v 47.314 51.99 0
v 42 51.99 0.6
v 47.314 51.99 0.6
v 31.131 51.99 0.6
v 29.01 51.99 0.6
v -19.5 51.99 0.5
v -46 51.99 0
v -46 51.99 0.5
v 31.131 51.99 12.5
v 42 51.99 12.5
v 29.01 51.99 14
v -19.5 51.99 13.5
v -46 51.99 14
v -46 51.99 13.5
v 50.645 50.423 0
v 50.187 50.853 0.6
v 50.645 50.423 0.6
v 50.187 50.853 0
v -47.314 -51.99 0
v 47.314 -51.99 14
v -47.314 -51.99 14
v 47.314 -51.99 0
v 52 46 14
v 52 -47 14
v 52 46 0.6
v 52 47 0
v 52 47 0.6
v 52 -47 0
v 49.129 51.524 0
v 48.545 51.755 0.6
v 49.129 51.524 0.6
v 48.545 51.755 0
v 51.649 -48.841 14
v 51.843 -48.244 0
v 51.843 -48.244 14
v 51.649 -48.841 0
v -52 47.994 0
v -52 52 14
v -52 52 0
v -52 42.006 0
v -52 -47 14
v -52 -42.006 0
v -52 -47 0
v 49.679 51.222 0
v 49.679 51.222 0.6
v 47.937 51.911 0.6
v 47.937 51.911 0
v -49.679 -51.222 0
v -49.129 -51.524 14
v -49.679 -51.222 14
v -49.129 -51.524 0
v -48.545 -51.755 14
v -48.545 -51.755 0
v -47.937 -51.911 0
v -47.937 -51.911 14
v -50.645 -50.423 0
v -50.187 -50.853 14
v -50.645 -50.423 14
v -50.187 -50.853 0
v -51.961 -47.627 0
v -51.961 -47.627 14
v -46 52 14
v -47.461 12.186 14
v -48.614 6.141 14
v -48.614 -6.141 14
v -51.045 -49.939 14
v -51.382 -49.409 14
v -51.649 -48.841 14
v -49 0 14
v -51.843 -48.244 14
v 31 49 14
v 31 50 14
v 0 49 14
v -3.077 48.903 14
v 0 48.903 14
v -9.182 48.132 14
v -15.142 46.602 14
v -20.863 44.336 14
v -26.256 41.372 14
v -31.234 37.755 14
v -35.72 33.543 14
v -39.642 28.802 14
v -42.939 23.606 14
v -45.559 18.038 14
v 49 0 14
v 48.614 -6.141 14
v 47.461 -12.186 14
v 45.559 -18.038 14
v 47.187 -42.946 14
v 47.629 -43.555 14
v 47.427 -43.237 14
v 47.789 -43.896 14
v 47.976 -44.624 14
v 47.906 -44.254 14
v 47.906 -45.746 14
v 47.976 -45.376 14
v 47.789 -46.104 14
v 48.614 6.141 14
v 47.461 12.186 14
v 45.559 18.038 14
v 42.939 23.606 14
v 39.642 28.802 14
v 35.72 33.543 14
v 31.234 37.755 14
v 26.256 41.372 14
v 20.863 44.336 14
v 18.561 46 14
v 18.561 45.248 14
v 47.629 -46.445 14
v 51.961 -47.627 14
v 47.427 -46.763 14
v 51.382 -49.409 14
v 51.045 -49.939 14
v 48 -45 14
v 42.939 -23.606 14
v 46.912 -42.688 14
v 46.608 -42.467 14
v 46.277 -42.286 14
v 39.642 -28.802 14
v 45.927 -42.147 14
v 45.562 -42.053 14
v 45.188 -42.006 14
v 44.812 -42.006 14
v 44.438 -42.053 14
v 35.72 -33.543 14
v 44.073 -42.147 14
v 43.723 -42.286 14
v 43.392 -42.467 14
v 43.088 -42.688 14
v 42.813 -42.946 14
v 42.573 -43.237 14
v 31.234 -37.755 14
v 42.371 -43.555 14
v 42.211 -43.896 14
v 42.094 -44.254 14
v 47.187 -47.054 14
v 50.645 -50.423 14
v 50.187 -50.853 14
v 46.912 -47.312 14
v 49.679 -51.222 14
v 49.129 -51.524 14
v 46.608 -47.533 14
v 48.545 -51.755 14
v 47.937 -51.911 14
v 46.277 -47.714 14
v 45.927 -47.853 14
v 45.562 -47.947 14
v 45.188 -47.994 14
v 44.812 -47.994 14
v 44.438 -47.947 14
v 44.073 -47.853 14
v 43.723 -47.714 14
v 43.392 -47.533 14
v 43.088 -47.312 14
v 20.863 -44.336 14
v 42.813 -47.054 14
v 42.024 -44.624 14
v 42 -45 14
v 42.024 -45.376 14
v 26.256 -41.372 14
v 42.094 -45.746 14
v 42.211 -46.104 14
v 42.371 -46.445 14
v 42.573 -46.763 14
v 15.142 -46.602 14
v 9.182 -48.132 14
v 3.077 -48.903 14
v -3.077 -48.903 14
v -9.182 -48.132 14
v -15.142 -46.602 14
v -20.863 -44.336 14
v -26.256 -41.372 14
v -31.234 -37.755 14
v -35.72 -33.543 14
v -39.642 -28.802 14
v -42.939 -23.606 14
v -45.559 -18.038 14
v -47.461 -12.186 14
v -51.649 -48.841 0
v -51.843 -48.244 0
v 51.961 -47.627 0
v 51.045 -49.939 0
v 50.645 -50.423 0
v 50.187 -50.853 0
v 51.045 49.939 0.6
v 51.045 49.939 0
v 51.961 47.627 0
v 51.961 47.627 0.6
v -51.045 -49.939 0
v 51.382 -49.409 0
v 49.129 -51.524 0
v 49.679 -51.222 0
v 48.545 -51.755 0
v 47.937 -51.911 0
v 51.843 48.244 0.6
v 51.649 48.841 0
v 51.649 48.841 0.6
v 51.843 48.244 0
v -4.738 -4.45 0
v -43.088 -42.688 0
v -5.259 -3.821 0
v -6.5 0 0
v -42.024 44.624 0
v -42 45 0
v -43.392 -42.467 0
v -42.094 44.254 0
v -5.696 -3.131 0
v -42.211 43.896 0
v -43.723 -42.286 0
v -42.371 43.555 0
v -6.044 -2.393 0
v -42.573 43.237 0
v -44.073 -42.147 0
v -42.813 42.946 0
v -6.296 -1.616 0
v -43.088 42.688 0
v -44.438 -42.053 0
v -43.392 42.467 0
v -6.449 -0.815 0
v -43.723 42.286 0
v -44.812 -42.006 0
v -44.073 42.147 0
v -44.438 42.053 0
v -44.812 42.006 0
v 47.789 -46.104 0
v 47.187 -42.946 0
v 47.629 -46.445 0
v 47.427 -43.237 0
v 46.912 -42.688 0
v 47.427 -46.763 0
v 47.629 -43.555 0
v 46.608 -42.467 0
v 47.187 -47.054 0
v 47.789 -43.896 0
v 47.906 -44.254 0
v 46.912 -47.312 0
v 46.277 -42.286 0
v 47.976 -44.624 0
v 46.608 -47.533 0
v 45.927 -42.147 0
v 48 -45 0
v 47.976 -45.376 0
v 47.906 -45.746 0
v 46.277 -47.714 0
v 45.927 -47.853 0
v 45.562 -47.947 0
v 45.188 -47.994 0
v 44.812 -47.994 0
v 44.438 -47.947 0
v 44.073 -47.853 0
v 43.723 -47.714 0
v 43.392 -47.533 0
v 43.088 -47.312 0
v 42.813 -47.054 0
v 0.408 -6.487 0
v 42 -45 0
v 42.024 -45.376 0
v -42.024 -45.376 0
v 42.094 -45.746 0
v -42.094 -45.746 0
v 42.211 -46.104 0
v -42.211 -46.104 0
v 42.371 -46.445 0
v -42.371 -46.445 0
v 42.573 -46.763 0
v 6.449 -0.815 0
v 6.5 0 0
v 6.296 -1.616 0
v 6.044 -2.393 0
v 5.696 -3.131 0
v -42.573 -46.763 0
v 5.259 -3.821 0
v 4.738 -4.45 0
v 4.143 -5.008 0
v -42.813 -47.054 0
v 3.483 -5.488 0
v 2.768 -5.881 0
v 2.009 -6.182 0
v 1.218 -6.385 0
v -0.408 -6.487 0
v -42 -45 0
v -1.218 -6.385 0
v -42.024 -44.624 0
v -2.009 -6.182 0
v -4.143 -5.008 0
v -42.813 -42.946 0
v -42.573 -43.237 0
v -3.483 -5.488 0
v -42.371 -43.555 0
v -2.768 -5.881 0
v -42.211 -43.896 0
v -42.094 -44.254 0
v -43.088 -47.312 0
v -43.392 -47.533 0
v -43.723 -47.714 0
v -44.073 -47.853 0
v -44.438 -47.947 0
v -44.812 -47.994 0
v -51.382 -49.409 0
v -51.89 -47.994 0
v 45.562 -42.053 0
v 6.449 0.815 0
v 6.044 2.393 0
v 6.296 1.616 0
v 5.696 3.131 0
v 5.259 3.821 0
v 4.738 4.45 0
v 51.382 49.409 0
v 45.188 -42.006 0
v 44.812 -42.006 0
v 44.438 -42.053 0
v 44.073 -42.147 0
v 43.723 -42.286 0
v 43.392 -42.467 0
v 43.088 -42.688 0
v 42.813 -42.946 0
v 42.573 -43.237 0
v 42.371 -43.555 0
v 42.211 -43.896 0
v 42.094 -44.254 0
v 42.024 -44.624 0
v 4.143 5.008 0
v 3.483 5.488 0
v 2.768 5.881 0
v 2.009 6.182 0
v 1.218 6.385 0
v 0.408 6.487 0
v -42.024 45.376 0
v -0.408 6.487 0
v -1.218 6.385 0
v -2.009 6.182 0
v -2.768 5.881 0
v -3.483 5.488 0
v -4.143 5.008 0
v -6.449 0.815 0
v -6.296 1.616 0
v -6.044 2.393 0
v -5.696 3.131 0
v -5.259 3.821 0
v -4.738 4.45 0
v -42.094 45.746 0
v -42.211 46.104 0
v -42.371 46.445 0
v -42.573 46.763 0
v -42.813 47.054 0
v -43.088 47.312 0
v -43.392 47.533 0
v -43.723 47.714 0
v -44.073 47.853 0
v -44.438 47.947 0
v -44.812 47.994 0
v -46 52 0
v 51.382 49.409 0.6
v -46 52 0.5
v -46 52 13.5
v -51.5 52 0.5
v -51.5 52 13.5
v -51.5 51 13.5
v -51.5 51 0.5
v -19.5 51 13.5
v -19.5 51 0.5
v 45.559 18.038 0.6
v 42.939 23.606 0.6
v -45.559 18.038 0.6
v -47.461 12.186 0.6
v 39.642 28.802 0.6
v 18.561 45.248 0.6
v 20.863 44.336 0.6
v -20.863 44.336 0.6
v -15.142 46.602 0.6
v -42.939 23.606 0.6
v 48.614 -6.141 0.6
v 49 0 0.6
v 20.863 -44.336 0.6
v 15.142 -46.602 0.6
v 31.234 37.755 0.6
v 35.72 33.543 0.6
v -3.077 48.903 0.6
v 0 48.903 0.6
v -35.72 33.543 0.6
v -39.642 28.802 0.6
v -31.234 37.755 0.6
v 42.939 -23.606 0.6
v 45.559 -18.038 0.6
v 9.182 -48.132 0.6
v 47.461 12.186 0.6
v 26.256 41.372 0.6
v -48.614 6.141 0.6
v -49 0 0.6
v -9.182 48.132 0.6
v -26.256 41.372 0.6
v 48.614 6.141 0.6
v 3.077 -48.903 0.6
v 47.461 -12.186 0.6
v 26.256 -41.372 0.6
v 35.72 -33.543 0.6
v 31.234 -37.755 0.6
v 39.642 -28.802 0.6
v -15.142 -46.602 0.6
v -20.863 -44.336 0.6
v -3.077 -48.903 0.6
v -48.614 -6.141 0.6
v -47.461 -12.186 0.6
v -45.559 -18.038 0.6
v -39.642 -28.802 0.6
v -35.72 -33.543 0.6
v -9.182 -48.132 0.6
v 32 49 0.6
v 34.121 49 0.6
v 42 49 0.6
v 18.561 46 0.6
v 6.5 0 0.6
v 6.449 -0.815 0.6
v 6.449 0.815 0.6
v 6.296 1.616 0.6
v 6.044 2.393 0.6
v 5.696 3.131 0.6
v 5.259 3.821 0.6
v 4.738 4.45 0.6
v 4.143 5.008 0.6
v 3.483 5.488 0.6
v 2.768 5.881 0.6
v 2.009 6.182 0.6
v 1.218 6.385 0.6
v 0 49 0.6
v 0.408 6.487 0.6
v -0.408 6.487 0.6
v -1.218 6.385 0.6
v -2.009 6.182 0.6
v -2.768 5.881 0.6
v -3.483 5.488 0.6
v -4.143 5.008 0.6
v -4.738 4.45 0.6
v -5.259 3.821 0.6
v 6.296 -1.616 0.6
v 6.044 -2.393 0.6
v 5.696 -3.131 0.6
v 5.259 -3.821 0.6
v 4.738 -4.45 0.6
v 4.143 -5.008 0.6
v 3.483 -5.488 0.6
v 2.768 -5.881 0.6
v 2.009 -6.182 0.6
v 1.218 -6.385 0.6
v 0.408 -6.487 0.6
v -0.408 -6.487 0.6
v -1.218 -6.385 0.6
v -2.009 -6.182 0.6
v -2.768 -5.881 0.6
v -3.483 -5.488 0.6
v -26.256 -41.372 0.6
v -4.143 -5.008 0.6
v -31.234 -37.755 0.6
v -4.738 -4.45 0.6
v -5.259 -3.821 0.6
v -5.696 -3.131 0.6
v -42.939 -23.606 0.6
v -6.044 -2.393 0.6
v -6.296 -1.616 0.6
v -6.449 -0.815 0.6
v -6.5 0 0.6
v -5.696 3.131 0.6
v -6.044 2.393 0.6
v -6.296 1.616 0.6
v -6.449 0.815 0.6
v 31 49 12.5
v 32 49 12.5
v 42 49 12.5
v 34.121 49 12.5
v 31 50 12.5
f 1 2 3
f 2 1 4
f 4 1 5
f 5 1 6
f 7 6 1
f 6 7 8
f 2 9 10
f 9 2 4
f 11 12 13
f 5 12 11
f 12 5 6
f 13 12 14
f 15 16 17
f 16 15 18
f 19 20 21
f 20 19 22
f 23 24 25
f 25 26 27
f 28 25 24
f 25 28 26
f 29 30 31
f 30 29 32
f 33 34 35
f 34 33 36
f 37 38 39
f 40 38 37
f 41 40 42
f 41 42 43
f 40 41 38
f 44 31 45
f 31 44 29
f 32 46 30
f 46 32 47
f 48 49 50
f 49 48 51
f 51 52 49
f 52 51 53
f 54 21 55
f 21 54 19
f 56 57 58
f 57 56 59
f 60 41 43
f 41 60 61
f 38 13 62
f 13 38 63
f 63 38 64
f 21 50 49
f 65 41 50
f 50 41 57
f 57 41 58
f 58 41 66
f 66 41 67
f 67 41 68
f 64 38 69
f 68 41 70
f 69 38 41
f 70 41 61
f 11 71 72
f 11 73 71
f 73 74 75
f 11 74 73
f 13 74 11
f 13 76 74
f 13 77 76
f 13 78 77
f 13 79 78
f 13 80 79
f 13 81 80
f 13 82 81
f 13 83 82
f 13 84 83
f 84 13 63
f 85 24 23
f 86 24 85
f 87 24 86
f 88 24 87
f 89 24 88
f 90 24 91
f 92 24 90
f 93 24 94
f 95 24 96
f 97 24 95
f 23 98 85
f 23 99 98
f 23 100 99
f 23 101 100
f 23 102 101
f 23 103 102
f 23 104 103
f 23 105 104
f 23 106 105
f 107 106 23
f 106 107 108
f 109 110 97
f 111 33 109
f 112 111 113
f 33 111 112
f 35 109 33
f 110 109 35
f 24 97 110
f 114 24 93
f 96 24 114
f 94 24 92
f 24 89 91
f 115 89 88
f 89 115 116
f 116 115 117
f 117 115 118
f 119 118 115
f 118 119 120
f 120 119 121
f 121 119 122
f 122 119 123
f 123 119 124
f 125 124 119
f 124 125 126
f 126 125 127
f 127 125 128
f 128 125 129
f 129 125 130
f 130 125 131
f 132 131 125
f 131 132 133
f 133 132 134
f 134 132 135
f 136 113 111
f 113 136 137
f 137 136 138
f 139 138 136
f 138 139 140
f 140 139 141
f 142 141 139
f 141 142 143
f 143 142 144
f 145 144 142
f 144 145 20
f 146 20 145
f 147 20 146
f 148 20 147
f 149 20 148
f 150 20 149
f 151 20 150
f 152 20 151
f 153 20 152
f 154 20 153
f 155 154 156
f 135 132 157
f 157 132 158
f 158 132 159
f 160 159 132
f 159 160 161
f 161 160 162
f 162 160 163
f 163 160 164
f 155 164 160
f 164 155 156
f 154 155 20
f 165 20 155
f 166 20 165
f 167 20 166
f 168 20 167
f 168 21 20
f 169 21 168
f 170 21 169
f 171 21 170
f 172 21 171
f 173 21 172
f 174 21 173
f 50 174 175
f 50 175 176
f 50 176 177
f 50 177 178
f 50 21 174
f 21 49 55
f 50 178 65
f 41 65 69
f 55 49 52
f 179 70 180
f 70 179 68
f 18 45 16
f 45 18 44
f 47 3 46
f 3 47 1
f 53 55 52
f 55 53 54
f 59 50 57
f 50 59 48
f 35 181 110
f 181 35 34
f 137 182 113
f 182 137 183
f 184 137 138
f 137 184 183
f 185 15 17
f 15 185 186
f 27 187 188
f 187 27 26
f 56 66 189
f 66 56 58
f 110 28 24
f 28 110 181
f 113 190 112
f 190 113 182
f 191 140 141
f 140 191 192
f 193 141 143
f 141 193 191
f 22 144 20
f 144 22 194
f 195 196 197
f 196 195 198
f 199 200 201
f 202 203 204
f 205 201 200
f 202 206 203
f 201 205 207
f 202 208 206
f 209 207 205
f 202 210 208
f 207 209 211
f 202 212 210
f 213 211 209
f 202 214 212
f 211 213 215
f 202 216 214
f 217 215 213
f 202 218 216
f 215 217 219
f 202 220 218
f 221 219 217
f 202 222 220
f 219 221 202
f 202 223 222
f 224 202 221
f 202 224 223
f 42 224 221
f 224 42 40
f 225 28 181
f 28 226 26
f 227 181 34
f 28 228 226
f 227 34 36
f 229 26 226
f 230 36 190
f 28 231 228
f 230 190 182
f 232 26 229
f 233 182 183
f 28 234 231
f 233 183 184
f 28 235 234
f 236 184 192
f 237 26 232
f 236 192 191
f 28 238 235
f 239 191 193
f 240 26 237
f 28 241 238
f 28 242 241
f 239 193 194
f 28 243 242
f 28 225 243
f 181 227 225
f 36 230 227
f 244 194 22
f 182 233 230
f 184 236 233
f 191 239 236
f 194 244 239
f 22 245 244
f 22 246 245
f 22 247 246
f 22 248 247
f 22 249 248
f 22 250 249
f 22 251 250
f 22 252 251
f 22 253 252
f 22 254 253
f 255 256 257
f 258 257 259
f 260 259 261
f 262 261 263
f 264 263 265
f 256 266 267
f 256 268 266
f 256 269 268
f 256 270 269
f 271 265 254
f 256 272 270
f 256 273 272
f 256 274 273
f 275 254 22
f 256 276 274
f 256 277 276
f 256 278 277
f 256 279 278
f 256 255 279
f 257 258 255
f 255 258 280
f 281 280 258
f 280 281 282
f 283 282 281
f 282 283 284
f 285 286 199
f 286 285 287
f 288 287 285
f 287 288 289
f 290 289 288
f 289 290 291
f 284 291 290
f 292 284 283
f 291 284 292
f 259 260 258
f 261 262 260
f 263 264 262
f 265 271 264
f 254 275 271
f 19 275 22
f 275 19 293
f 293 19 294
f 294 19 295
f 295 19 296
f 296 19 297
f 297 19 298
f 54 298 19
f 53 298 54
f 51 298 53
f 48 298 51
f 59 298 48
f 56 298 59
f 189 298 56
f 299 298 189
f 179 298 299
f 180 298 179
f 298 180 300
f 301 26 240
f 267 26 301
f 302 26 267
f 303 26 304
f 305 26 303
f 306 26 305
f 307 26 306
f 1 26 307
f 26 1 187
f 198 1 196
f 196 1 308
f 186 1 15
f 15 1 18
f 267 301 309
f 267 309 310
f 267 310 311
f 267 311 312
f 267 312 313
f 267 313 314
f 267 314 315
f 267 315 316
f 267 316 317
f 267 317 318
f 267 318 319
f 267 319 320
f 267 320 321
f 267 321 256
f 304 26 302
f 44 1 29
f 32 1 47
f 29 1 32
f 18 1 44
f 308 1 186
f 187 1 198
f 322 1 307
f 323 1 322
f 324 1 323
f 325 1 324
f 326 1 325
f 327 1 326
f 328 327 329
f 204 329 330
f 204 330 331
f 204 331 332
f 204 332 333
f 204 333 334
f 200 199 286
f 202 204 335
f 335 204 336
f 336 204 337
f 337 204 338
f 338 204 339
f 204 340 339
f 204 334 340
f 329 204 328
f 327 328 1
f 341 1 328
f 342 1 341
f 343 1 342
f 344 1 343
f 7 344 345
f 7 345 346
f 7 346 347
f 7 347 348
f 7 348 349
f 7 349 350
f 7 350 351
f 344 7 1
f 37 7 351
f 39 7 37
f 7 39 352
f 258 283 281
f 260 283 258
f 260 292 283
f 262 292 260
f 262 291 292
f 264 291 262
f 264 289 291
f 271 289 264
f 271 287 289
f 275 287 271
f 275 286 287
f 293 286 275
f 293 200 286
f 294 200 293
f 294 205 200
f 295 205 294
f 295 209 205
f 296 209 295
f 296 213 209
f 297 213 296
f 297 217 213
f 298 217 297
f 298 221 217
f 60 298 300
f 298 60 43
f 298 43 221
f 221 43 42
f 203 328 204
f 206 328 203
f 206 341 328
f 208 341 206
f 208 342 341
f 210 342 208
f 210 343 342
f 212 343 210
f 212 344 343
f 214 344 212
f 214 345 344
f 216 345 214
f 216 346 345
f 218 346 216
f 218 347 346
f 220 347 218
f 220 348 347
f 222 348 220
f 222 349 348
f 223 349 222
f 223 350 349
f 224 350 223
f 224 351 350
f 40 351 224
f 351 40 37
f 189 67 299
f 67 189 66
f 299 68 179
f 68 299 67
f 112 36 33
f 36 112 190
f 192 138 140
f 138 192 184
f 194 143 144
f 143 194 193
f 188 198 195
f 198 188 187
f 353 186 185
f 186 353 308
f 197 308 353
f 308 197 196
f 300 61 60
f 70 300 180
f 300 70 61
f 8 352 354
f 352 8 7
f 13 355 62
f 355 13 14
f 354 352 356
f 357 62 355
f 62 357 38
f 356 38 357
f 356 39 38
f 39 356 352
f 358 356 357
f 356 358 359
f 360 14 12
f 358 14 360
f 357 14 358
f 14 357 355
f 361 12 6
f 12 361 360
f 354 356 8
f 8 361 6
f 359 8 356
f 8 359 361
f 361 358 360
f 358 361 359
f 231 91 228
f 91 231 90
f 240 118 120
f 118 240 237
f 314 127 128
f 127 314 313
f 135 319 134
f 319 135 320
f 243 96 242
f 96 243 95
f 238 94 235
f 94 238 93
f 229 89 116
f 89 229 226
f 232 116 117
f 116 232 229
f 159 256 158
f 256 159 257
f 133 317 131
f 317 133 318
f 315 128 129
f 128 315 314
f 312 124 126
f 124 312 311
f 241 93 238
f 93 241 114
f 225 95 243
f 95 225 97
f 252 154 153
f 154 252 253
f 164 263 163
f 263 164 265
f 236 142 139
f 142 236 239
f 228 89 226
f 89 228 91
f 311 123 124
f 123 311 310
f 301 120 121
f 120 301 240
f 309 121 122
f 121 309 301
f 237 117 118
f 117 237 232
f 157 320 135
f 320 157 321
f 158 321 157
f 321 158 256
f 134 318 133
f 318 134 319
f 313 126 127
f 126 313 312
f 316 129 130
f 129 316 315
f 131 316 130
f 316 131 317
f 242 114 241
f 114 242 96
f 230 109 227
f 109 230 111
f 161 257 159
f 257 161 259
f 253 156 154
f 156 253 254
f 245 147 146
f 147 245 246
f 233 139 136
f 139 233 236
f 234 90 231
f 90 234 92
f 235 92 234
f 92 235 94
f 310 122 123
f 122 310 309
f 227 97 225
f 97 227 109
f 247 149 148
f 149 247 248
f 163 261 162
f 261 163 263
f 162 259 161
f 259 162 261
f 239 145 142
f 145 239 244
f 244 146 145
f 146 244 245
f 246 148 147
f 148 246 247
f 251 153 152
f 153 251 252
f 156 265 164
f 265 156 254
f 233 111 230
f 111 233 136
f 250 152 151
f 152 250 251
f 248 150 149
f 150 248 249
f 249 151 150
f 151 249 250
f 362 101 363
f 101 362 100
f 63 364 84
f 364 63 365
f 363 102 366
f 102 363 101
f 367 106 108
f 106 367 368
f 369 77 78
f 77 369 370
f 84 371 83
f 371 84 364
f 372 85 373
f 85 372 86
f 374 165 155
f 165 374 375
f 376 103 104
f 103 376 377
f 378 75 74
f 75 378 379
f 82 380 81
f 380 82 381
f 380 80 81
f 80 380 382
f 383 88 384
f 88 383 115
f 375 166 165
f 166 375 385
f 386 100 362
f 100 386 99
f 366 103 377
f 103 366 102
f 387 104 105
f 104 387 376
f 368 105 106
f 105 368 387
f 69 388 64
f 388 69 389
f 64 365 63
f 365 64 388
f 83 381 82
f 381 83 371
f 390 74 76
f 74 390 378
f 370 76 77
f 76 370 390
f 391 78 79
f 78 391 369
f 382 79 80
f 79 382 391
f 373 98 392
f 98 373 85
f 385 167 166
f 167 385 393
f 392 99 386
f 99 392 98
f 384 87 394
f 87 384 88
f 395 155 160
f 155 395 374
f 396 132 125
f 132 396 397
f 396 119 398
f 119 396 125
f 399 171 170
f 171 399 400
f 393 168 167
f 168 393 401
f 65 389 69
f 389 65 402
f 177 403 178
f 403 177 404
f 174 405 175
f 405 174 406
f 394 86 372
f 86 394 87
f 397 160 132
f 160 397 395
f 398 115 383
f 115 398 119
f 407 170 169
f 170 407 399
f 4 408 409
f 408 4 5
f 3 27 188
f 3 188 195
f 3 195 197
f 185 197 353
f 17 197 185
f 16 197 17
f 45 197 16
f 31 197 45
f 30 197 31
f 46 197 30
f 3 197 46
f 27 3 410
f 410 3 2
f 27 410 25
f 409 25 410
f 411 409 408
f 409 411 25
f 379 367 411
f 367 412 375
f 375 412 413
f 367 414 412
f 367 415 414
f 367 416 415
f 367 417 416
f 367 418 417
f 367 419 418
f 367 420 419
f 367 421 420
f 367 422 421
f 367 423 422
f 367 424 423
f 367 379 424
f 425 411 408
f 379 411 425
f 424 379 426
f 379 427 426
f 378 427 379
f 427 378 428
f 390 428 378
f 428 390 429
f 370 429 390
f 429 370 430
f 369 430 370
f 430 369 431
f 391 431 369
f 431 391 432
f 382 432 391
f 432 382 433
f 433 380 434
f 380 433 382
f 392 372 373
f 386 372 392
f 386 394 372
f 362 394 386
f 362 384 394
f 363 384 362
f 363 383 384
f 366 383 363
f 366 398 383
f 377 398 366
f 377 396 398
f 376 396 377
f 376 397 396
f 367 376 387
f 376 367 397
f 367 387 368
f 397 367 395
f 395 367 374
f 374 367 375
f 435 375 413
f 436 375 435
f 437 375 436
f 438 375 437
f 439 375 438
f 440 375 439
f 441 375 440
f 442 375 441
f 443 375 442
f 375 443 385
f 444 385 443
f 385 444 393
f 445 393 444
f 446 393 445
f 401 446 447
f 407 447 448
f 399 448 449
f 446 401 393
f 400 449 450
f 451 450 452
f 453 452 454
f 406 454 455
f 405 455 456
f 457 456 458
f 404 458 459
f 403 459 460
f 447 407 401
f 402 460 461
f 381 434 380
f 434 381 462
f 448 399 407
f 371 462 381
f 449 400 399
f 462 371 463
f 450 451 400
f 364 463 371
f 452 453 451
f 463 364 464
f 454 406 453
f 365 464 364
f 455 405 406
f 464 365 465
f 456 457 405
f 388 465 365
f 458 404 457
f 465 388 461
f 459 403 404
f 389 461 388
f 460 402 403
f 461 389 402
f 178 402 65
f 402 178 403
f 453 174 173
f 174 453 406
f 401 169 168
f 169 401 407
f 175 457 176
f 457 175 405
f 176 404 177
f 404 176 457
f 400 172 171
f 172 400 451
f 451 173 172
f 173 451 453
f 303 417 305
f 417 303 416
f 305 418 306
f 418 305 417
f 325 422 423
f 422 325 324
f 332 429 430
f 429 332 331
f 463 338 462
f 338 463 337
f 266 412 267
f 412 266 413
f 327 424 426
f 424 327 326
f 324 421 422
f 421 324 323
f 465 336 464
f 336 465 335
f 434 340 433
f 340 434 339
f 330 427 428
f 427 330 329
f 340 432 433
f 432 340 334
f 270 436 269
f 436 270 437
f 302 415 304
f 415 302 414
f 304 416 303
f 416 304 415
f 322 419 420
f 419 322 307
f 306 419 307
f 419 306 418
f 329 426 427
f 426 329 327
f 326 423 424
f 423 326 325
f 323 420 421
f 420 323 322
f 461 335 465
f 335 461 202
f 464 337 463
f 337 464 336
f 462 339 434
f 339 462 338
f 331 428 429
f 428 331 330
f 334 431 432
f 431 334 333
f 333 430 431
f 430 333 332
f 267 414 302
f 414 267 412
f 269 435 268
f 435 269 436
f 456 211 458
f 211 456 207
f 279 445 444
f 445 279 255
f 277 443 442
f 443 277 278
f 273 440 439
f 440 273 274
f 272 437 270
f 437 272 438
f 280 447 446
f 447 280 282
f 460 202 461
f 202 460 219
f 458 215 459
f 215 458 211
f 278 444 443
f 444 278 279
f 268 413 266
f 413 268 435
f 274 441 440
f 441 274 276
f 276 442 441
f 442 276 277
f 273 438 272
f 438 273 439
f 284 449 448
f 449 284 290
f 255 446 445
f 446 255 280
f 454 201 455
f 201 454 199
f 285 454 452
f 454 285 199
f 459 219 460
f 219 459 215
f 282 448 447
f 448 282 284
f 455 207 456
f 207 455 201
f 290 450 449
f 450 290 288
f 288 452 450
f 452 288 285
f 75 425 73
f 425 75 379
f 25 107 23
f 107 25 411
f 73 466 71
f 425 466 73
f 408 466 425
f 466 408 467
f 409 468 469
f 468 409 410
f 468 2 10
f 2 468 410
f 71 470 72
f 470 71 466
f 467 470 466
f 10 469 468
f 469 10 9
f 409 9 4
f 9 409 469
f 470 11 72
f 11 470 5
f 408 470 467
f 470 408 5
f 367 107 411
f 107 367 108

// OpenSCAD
$fn = 50;


difference() {
	union() {
		hull() {
			translate(v = [-47.0000000000, 47.0000000000, 0]) {
				cylinder(h = 14, r = 5);
			}
			translate(v = [47.0000000000, 47.0000000000, 0]) {
				cylinder(h = 14, r = 5);
			}
			translate(v = [-47.0000000000, -47.0000000000, 0]) {
				cylinder(h = 14, r = 5);
			}
			translate(v = [47.0000000000, -47.0000000000, 0]) {
				cylinder(h = 14, r = 5);
			}
		}
		translate(v = [-52.0000000000, 46.0000000000, 0]) {
			cube(size = [6, 6, 14]);
		}
	}
	union() {
		translate(v = [-52.5000000000, -45.0000000000, -250.0000000000]) {
			rotate(a = [0, 0, 0]) {
				difference() {
					union() {
						hull() {
							translate(v = [7.5000000000, 0, 0]) {
								cylinder(h = 250, r = 3.0000000000, r1 = 3.0000000000, r2 = 3.0000000000);
							}
							translate(v = [-7.5000000000, 0, 0]) {
								cylinder(h = 250, r = 3.0000000000, r1 = 3.0000000000, r2 = 3.0000000000);
							}
						}
					}
					union();
				}
			}
		}
		translate(v = [-52.5000000000, 45.0000000000, -250.0000000000]) {
			rotate(a = [0, 0, 0]) {
				difference() {
					union() {
						hull() {
							translate(v = [7.5000000000, 0, 0]) {
								cylinder(h = 250, r = 3.0000000000, r1 = 3.0000000000, r2 = 3.0000000000);
							}
							translate(v = [-7.5000000000, 0, 0]) {
								cylinder(h = 250, r = 3.0000000000, r1 = 3.0000000000, r2 = 3.0000000000);
							}
						}
					}
					union();
				}
			}
		}
		translate(v = [-51.5000000000, 51.0000000000, 0.5000000000]) {
			cube(size = [32, 1, 13.0000000000]);
		}
		translate(v = [45.0000000000, -45.0000000000, -50.0000000000]) {
			cylinder(h = 100, r = 3.0000000000);
		}
		translate(v = [0, 0, 0.6000000000]) {
			cylinder(h = 16.4000000000, r = 49.0000000000);
		}
		translate(v = [0, 0, -7.0000000000]) {
			cylinder(h = 14, r = 6.5000000000);
		}
		translate(v = [0.0000000000, 46.0000000000, 0.6000000000]) {
			cube(size = [52.0000000000, 3, 16.4000000000]);
		}
		translate(v = [42.0000000000, 46.0000000000, 0.6000000000]) {
			cube(size = [10, 6, 16.4000000000]);
		}
		translate(v = [31.0000000000, 46.0000000000, 12.5000000000]) {
			cube(size = [21, 6, 1.5000000000]);
		}
		translate(v = [28.2500000000, 52.7500000000, 0.6000000000]) {
			rotate(a = [0, 0, -45]) {
				cube(size = [7.5000000000, 1.5000000000, 16.4000000000]);
			}
		}
		translate(v = [11.0610000000, 44.0000000000, 0.6000000000]) {
			cube(size = [7.5000000000, 2, 13.4000000000]);
		}
	}
}
